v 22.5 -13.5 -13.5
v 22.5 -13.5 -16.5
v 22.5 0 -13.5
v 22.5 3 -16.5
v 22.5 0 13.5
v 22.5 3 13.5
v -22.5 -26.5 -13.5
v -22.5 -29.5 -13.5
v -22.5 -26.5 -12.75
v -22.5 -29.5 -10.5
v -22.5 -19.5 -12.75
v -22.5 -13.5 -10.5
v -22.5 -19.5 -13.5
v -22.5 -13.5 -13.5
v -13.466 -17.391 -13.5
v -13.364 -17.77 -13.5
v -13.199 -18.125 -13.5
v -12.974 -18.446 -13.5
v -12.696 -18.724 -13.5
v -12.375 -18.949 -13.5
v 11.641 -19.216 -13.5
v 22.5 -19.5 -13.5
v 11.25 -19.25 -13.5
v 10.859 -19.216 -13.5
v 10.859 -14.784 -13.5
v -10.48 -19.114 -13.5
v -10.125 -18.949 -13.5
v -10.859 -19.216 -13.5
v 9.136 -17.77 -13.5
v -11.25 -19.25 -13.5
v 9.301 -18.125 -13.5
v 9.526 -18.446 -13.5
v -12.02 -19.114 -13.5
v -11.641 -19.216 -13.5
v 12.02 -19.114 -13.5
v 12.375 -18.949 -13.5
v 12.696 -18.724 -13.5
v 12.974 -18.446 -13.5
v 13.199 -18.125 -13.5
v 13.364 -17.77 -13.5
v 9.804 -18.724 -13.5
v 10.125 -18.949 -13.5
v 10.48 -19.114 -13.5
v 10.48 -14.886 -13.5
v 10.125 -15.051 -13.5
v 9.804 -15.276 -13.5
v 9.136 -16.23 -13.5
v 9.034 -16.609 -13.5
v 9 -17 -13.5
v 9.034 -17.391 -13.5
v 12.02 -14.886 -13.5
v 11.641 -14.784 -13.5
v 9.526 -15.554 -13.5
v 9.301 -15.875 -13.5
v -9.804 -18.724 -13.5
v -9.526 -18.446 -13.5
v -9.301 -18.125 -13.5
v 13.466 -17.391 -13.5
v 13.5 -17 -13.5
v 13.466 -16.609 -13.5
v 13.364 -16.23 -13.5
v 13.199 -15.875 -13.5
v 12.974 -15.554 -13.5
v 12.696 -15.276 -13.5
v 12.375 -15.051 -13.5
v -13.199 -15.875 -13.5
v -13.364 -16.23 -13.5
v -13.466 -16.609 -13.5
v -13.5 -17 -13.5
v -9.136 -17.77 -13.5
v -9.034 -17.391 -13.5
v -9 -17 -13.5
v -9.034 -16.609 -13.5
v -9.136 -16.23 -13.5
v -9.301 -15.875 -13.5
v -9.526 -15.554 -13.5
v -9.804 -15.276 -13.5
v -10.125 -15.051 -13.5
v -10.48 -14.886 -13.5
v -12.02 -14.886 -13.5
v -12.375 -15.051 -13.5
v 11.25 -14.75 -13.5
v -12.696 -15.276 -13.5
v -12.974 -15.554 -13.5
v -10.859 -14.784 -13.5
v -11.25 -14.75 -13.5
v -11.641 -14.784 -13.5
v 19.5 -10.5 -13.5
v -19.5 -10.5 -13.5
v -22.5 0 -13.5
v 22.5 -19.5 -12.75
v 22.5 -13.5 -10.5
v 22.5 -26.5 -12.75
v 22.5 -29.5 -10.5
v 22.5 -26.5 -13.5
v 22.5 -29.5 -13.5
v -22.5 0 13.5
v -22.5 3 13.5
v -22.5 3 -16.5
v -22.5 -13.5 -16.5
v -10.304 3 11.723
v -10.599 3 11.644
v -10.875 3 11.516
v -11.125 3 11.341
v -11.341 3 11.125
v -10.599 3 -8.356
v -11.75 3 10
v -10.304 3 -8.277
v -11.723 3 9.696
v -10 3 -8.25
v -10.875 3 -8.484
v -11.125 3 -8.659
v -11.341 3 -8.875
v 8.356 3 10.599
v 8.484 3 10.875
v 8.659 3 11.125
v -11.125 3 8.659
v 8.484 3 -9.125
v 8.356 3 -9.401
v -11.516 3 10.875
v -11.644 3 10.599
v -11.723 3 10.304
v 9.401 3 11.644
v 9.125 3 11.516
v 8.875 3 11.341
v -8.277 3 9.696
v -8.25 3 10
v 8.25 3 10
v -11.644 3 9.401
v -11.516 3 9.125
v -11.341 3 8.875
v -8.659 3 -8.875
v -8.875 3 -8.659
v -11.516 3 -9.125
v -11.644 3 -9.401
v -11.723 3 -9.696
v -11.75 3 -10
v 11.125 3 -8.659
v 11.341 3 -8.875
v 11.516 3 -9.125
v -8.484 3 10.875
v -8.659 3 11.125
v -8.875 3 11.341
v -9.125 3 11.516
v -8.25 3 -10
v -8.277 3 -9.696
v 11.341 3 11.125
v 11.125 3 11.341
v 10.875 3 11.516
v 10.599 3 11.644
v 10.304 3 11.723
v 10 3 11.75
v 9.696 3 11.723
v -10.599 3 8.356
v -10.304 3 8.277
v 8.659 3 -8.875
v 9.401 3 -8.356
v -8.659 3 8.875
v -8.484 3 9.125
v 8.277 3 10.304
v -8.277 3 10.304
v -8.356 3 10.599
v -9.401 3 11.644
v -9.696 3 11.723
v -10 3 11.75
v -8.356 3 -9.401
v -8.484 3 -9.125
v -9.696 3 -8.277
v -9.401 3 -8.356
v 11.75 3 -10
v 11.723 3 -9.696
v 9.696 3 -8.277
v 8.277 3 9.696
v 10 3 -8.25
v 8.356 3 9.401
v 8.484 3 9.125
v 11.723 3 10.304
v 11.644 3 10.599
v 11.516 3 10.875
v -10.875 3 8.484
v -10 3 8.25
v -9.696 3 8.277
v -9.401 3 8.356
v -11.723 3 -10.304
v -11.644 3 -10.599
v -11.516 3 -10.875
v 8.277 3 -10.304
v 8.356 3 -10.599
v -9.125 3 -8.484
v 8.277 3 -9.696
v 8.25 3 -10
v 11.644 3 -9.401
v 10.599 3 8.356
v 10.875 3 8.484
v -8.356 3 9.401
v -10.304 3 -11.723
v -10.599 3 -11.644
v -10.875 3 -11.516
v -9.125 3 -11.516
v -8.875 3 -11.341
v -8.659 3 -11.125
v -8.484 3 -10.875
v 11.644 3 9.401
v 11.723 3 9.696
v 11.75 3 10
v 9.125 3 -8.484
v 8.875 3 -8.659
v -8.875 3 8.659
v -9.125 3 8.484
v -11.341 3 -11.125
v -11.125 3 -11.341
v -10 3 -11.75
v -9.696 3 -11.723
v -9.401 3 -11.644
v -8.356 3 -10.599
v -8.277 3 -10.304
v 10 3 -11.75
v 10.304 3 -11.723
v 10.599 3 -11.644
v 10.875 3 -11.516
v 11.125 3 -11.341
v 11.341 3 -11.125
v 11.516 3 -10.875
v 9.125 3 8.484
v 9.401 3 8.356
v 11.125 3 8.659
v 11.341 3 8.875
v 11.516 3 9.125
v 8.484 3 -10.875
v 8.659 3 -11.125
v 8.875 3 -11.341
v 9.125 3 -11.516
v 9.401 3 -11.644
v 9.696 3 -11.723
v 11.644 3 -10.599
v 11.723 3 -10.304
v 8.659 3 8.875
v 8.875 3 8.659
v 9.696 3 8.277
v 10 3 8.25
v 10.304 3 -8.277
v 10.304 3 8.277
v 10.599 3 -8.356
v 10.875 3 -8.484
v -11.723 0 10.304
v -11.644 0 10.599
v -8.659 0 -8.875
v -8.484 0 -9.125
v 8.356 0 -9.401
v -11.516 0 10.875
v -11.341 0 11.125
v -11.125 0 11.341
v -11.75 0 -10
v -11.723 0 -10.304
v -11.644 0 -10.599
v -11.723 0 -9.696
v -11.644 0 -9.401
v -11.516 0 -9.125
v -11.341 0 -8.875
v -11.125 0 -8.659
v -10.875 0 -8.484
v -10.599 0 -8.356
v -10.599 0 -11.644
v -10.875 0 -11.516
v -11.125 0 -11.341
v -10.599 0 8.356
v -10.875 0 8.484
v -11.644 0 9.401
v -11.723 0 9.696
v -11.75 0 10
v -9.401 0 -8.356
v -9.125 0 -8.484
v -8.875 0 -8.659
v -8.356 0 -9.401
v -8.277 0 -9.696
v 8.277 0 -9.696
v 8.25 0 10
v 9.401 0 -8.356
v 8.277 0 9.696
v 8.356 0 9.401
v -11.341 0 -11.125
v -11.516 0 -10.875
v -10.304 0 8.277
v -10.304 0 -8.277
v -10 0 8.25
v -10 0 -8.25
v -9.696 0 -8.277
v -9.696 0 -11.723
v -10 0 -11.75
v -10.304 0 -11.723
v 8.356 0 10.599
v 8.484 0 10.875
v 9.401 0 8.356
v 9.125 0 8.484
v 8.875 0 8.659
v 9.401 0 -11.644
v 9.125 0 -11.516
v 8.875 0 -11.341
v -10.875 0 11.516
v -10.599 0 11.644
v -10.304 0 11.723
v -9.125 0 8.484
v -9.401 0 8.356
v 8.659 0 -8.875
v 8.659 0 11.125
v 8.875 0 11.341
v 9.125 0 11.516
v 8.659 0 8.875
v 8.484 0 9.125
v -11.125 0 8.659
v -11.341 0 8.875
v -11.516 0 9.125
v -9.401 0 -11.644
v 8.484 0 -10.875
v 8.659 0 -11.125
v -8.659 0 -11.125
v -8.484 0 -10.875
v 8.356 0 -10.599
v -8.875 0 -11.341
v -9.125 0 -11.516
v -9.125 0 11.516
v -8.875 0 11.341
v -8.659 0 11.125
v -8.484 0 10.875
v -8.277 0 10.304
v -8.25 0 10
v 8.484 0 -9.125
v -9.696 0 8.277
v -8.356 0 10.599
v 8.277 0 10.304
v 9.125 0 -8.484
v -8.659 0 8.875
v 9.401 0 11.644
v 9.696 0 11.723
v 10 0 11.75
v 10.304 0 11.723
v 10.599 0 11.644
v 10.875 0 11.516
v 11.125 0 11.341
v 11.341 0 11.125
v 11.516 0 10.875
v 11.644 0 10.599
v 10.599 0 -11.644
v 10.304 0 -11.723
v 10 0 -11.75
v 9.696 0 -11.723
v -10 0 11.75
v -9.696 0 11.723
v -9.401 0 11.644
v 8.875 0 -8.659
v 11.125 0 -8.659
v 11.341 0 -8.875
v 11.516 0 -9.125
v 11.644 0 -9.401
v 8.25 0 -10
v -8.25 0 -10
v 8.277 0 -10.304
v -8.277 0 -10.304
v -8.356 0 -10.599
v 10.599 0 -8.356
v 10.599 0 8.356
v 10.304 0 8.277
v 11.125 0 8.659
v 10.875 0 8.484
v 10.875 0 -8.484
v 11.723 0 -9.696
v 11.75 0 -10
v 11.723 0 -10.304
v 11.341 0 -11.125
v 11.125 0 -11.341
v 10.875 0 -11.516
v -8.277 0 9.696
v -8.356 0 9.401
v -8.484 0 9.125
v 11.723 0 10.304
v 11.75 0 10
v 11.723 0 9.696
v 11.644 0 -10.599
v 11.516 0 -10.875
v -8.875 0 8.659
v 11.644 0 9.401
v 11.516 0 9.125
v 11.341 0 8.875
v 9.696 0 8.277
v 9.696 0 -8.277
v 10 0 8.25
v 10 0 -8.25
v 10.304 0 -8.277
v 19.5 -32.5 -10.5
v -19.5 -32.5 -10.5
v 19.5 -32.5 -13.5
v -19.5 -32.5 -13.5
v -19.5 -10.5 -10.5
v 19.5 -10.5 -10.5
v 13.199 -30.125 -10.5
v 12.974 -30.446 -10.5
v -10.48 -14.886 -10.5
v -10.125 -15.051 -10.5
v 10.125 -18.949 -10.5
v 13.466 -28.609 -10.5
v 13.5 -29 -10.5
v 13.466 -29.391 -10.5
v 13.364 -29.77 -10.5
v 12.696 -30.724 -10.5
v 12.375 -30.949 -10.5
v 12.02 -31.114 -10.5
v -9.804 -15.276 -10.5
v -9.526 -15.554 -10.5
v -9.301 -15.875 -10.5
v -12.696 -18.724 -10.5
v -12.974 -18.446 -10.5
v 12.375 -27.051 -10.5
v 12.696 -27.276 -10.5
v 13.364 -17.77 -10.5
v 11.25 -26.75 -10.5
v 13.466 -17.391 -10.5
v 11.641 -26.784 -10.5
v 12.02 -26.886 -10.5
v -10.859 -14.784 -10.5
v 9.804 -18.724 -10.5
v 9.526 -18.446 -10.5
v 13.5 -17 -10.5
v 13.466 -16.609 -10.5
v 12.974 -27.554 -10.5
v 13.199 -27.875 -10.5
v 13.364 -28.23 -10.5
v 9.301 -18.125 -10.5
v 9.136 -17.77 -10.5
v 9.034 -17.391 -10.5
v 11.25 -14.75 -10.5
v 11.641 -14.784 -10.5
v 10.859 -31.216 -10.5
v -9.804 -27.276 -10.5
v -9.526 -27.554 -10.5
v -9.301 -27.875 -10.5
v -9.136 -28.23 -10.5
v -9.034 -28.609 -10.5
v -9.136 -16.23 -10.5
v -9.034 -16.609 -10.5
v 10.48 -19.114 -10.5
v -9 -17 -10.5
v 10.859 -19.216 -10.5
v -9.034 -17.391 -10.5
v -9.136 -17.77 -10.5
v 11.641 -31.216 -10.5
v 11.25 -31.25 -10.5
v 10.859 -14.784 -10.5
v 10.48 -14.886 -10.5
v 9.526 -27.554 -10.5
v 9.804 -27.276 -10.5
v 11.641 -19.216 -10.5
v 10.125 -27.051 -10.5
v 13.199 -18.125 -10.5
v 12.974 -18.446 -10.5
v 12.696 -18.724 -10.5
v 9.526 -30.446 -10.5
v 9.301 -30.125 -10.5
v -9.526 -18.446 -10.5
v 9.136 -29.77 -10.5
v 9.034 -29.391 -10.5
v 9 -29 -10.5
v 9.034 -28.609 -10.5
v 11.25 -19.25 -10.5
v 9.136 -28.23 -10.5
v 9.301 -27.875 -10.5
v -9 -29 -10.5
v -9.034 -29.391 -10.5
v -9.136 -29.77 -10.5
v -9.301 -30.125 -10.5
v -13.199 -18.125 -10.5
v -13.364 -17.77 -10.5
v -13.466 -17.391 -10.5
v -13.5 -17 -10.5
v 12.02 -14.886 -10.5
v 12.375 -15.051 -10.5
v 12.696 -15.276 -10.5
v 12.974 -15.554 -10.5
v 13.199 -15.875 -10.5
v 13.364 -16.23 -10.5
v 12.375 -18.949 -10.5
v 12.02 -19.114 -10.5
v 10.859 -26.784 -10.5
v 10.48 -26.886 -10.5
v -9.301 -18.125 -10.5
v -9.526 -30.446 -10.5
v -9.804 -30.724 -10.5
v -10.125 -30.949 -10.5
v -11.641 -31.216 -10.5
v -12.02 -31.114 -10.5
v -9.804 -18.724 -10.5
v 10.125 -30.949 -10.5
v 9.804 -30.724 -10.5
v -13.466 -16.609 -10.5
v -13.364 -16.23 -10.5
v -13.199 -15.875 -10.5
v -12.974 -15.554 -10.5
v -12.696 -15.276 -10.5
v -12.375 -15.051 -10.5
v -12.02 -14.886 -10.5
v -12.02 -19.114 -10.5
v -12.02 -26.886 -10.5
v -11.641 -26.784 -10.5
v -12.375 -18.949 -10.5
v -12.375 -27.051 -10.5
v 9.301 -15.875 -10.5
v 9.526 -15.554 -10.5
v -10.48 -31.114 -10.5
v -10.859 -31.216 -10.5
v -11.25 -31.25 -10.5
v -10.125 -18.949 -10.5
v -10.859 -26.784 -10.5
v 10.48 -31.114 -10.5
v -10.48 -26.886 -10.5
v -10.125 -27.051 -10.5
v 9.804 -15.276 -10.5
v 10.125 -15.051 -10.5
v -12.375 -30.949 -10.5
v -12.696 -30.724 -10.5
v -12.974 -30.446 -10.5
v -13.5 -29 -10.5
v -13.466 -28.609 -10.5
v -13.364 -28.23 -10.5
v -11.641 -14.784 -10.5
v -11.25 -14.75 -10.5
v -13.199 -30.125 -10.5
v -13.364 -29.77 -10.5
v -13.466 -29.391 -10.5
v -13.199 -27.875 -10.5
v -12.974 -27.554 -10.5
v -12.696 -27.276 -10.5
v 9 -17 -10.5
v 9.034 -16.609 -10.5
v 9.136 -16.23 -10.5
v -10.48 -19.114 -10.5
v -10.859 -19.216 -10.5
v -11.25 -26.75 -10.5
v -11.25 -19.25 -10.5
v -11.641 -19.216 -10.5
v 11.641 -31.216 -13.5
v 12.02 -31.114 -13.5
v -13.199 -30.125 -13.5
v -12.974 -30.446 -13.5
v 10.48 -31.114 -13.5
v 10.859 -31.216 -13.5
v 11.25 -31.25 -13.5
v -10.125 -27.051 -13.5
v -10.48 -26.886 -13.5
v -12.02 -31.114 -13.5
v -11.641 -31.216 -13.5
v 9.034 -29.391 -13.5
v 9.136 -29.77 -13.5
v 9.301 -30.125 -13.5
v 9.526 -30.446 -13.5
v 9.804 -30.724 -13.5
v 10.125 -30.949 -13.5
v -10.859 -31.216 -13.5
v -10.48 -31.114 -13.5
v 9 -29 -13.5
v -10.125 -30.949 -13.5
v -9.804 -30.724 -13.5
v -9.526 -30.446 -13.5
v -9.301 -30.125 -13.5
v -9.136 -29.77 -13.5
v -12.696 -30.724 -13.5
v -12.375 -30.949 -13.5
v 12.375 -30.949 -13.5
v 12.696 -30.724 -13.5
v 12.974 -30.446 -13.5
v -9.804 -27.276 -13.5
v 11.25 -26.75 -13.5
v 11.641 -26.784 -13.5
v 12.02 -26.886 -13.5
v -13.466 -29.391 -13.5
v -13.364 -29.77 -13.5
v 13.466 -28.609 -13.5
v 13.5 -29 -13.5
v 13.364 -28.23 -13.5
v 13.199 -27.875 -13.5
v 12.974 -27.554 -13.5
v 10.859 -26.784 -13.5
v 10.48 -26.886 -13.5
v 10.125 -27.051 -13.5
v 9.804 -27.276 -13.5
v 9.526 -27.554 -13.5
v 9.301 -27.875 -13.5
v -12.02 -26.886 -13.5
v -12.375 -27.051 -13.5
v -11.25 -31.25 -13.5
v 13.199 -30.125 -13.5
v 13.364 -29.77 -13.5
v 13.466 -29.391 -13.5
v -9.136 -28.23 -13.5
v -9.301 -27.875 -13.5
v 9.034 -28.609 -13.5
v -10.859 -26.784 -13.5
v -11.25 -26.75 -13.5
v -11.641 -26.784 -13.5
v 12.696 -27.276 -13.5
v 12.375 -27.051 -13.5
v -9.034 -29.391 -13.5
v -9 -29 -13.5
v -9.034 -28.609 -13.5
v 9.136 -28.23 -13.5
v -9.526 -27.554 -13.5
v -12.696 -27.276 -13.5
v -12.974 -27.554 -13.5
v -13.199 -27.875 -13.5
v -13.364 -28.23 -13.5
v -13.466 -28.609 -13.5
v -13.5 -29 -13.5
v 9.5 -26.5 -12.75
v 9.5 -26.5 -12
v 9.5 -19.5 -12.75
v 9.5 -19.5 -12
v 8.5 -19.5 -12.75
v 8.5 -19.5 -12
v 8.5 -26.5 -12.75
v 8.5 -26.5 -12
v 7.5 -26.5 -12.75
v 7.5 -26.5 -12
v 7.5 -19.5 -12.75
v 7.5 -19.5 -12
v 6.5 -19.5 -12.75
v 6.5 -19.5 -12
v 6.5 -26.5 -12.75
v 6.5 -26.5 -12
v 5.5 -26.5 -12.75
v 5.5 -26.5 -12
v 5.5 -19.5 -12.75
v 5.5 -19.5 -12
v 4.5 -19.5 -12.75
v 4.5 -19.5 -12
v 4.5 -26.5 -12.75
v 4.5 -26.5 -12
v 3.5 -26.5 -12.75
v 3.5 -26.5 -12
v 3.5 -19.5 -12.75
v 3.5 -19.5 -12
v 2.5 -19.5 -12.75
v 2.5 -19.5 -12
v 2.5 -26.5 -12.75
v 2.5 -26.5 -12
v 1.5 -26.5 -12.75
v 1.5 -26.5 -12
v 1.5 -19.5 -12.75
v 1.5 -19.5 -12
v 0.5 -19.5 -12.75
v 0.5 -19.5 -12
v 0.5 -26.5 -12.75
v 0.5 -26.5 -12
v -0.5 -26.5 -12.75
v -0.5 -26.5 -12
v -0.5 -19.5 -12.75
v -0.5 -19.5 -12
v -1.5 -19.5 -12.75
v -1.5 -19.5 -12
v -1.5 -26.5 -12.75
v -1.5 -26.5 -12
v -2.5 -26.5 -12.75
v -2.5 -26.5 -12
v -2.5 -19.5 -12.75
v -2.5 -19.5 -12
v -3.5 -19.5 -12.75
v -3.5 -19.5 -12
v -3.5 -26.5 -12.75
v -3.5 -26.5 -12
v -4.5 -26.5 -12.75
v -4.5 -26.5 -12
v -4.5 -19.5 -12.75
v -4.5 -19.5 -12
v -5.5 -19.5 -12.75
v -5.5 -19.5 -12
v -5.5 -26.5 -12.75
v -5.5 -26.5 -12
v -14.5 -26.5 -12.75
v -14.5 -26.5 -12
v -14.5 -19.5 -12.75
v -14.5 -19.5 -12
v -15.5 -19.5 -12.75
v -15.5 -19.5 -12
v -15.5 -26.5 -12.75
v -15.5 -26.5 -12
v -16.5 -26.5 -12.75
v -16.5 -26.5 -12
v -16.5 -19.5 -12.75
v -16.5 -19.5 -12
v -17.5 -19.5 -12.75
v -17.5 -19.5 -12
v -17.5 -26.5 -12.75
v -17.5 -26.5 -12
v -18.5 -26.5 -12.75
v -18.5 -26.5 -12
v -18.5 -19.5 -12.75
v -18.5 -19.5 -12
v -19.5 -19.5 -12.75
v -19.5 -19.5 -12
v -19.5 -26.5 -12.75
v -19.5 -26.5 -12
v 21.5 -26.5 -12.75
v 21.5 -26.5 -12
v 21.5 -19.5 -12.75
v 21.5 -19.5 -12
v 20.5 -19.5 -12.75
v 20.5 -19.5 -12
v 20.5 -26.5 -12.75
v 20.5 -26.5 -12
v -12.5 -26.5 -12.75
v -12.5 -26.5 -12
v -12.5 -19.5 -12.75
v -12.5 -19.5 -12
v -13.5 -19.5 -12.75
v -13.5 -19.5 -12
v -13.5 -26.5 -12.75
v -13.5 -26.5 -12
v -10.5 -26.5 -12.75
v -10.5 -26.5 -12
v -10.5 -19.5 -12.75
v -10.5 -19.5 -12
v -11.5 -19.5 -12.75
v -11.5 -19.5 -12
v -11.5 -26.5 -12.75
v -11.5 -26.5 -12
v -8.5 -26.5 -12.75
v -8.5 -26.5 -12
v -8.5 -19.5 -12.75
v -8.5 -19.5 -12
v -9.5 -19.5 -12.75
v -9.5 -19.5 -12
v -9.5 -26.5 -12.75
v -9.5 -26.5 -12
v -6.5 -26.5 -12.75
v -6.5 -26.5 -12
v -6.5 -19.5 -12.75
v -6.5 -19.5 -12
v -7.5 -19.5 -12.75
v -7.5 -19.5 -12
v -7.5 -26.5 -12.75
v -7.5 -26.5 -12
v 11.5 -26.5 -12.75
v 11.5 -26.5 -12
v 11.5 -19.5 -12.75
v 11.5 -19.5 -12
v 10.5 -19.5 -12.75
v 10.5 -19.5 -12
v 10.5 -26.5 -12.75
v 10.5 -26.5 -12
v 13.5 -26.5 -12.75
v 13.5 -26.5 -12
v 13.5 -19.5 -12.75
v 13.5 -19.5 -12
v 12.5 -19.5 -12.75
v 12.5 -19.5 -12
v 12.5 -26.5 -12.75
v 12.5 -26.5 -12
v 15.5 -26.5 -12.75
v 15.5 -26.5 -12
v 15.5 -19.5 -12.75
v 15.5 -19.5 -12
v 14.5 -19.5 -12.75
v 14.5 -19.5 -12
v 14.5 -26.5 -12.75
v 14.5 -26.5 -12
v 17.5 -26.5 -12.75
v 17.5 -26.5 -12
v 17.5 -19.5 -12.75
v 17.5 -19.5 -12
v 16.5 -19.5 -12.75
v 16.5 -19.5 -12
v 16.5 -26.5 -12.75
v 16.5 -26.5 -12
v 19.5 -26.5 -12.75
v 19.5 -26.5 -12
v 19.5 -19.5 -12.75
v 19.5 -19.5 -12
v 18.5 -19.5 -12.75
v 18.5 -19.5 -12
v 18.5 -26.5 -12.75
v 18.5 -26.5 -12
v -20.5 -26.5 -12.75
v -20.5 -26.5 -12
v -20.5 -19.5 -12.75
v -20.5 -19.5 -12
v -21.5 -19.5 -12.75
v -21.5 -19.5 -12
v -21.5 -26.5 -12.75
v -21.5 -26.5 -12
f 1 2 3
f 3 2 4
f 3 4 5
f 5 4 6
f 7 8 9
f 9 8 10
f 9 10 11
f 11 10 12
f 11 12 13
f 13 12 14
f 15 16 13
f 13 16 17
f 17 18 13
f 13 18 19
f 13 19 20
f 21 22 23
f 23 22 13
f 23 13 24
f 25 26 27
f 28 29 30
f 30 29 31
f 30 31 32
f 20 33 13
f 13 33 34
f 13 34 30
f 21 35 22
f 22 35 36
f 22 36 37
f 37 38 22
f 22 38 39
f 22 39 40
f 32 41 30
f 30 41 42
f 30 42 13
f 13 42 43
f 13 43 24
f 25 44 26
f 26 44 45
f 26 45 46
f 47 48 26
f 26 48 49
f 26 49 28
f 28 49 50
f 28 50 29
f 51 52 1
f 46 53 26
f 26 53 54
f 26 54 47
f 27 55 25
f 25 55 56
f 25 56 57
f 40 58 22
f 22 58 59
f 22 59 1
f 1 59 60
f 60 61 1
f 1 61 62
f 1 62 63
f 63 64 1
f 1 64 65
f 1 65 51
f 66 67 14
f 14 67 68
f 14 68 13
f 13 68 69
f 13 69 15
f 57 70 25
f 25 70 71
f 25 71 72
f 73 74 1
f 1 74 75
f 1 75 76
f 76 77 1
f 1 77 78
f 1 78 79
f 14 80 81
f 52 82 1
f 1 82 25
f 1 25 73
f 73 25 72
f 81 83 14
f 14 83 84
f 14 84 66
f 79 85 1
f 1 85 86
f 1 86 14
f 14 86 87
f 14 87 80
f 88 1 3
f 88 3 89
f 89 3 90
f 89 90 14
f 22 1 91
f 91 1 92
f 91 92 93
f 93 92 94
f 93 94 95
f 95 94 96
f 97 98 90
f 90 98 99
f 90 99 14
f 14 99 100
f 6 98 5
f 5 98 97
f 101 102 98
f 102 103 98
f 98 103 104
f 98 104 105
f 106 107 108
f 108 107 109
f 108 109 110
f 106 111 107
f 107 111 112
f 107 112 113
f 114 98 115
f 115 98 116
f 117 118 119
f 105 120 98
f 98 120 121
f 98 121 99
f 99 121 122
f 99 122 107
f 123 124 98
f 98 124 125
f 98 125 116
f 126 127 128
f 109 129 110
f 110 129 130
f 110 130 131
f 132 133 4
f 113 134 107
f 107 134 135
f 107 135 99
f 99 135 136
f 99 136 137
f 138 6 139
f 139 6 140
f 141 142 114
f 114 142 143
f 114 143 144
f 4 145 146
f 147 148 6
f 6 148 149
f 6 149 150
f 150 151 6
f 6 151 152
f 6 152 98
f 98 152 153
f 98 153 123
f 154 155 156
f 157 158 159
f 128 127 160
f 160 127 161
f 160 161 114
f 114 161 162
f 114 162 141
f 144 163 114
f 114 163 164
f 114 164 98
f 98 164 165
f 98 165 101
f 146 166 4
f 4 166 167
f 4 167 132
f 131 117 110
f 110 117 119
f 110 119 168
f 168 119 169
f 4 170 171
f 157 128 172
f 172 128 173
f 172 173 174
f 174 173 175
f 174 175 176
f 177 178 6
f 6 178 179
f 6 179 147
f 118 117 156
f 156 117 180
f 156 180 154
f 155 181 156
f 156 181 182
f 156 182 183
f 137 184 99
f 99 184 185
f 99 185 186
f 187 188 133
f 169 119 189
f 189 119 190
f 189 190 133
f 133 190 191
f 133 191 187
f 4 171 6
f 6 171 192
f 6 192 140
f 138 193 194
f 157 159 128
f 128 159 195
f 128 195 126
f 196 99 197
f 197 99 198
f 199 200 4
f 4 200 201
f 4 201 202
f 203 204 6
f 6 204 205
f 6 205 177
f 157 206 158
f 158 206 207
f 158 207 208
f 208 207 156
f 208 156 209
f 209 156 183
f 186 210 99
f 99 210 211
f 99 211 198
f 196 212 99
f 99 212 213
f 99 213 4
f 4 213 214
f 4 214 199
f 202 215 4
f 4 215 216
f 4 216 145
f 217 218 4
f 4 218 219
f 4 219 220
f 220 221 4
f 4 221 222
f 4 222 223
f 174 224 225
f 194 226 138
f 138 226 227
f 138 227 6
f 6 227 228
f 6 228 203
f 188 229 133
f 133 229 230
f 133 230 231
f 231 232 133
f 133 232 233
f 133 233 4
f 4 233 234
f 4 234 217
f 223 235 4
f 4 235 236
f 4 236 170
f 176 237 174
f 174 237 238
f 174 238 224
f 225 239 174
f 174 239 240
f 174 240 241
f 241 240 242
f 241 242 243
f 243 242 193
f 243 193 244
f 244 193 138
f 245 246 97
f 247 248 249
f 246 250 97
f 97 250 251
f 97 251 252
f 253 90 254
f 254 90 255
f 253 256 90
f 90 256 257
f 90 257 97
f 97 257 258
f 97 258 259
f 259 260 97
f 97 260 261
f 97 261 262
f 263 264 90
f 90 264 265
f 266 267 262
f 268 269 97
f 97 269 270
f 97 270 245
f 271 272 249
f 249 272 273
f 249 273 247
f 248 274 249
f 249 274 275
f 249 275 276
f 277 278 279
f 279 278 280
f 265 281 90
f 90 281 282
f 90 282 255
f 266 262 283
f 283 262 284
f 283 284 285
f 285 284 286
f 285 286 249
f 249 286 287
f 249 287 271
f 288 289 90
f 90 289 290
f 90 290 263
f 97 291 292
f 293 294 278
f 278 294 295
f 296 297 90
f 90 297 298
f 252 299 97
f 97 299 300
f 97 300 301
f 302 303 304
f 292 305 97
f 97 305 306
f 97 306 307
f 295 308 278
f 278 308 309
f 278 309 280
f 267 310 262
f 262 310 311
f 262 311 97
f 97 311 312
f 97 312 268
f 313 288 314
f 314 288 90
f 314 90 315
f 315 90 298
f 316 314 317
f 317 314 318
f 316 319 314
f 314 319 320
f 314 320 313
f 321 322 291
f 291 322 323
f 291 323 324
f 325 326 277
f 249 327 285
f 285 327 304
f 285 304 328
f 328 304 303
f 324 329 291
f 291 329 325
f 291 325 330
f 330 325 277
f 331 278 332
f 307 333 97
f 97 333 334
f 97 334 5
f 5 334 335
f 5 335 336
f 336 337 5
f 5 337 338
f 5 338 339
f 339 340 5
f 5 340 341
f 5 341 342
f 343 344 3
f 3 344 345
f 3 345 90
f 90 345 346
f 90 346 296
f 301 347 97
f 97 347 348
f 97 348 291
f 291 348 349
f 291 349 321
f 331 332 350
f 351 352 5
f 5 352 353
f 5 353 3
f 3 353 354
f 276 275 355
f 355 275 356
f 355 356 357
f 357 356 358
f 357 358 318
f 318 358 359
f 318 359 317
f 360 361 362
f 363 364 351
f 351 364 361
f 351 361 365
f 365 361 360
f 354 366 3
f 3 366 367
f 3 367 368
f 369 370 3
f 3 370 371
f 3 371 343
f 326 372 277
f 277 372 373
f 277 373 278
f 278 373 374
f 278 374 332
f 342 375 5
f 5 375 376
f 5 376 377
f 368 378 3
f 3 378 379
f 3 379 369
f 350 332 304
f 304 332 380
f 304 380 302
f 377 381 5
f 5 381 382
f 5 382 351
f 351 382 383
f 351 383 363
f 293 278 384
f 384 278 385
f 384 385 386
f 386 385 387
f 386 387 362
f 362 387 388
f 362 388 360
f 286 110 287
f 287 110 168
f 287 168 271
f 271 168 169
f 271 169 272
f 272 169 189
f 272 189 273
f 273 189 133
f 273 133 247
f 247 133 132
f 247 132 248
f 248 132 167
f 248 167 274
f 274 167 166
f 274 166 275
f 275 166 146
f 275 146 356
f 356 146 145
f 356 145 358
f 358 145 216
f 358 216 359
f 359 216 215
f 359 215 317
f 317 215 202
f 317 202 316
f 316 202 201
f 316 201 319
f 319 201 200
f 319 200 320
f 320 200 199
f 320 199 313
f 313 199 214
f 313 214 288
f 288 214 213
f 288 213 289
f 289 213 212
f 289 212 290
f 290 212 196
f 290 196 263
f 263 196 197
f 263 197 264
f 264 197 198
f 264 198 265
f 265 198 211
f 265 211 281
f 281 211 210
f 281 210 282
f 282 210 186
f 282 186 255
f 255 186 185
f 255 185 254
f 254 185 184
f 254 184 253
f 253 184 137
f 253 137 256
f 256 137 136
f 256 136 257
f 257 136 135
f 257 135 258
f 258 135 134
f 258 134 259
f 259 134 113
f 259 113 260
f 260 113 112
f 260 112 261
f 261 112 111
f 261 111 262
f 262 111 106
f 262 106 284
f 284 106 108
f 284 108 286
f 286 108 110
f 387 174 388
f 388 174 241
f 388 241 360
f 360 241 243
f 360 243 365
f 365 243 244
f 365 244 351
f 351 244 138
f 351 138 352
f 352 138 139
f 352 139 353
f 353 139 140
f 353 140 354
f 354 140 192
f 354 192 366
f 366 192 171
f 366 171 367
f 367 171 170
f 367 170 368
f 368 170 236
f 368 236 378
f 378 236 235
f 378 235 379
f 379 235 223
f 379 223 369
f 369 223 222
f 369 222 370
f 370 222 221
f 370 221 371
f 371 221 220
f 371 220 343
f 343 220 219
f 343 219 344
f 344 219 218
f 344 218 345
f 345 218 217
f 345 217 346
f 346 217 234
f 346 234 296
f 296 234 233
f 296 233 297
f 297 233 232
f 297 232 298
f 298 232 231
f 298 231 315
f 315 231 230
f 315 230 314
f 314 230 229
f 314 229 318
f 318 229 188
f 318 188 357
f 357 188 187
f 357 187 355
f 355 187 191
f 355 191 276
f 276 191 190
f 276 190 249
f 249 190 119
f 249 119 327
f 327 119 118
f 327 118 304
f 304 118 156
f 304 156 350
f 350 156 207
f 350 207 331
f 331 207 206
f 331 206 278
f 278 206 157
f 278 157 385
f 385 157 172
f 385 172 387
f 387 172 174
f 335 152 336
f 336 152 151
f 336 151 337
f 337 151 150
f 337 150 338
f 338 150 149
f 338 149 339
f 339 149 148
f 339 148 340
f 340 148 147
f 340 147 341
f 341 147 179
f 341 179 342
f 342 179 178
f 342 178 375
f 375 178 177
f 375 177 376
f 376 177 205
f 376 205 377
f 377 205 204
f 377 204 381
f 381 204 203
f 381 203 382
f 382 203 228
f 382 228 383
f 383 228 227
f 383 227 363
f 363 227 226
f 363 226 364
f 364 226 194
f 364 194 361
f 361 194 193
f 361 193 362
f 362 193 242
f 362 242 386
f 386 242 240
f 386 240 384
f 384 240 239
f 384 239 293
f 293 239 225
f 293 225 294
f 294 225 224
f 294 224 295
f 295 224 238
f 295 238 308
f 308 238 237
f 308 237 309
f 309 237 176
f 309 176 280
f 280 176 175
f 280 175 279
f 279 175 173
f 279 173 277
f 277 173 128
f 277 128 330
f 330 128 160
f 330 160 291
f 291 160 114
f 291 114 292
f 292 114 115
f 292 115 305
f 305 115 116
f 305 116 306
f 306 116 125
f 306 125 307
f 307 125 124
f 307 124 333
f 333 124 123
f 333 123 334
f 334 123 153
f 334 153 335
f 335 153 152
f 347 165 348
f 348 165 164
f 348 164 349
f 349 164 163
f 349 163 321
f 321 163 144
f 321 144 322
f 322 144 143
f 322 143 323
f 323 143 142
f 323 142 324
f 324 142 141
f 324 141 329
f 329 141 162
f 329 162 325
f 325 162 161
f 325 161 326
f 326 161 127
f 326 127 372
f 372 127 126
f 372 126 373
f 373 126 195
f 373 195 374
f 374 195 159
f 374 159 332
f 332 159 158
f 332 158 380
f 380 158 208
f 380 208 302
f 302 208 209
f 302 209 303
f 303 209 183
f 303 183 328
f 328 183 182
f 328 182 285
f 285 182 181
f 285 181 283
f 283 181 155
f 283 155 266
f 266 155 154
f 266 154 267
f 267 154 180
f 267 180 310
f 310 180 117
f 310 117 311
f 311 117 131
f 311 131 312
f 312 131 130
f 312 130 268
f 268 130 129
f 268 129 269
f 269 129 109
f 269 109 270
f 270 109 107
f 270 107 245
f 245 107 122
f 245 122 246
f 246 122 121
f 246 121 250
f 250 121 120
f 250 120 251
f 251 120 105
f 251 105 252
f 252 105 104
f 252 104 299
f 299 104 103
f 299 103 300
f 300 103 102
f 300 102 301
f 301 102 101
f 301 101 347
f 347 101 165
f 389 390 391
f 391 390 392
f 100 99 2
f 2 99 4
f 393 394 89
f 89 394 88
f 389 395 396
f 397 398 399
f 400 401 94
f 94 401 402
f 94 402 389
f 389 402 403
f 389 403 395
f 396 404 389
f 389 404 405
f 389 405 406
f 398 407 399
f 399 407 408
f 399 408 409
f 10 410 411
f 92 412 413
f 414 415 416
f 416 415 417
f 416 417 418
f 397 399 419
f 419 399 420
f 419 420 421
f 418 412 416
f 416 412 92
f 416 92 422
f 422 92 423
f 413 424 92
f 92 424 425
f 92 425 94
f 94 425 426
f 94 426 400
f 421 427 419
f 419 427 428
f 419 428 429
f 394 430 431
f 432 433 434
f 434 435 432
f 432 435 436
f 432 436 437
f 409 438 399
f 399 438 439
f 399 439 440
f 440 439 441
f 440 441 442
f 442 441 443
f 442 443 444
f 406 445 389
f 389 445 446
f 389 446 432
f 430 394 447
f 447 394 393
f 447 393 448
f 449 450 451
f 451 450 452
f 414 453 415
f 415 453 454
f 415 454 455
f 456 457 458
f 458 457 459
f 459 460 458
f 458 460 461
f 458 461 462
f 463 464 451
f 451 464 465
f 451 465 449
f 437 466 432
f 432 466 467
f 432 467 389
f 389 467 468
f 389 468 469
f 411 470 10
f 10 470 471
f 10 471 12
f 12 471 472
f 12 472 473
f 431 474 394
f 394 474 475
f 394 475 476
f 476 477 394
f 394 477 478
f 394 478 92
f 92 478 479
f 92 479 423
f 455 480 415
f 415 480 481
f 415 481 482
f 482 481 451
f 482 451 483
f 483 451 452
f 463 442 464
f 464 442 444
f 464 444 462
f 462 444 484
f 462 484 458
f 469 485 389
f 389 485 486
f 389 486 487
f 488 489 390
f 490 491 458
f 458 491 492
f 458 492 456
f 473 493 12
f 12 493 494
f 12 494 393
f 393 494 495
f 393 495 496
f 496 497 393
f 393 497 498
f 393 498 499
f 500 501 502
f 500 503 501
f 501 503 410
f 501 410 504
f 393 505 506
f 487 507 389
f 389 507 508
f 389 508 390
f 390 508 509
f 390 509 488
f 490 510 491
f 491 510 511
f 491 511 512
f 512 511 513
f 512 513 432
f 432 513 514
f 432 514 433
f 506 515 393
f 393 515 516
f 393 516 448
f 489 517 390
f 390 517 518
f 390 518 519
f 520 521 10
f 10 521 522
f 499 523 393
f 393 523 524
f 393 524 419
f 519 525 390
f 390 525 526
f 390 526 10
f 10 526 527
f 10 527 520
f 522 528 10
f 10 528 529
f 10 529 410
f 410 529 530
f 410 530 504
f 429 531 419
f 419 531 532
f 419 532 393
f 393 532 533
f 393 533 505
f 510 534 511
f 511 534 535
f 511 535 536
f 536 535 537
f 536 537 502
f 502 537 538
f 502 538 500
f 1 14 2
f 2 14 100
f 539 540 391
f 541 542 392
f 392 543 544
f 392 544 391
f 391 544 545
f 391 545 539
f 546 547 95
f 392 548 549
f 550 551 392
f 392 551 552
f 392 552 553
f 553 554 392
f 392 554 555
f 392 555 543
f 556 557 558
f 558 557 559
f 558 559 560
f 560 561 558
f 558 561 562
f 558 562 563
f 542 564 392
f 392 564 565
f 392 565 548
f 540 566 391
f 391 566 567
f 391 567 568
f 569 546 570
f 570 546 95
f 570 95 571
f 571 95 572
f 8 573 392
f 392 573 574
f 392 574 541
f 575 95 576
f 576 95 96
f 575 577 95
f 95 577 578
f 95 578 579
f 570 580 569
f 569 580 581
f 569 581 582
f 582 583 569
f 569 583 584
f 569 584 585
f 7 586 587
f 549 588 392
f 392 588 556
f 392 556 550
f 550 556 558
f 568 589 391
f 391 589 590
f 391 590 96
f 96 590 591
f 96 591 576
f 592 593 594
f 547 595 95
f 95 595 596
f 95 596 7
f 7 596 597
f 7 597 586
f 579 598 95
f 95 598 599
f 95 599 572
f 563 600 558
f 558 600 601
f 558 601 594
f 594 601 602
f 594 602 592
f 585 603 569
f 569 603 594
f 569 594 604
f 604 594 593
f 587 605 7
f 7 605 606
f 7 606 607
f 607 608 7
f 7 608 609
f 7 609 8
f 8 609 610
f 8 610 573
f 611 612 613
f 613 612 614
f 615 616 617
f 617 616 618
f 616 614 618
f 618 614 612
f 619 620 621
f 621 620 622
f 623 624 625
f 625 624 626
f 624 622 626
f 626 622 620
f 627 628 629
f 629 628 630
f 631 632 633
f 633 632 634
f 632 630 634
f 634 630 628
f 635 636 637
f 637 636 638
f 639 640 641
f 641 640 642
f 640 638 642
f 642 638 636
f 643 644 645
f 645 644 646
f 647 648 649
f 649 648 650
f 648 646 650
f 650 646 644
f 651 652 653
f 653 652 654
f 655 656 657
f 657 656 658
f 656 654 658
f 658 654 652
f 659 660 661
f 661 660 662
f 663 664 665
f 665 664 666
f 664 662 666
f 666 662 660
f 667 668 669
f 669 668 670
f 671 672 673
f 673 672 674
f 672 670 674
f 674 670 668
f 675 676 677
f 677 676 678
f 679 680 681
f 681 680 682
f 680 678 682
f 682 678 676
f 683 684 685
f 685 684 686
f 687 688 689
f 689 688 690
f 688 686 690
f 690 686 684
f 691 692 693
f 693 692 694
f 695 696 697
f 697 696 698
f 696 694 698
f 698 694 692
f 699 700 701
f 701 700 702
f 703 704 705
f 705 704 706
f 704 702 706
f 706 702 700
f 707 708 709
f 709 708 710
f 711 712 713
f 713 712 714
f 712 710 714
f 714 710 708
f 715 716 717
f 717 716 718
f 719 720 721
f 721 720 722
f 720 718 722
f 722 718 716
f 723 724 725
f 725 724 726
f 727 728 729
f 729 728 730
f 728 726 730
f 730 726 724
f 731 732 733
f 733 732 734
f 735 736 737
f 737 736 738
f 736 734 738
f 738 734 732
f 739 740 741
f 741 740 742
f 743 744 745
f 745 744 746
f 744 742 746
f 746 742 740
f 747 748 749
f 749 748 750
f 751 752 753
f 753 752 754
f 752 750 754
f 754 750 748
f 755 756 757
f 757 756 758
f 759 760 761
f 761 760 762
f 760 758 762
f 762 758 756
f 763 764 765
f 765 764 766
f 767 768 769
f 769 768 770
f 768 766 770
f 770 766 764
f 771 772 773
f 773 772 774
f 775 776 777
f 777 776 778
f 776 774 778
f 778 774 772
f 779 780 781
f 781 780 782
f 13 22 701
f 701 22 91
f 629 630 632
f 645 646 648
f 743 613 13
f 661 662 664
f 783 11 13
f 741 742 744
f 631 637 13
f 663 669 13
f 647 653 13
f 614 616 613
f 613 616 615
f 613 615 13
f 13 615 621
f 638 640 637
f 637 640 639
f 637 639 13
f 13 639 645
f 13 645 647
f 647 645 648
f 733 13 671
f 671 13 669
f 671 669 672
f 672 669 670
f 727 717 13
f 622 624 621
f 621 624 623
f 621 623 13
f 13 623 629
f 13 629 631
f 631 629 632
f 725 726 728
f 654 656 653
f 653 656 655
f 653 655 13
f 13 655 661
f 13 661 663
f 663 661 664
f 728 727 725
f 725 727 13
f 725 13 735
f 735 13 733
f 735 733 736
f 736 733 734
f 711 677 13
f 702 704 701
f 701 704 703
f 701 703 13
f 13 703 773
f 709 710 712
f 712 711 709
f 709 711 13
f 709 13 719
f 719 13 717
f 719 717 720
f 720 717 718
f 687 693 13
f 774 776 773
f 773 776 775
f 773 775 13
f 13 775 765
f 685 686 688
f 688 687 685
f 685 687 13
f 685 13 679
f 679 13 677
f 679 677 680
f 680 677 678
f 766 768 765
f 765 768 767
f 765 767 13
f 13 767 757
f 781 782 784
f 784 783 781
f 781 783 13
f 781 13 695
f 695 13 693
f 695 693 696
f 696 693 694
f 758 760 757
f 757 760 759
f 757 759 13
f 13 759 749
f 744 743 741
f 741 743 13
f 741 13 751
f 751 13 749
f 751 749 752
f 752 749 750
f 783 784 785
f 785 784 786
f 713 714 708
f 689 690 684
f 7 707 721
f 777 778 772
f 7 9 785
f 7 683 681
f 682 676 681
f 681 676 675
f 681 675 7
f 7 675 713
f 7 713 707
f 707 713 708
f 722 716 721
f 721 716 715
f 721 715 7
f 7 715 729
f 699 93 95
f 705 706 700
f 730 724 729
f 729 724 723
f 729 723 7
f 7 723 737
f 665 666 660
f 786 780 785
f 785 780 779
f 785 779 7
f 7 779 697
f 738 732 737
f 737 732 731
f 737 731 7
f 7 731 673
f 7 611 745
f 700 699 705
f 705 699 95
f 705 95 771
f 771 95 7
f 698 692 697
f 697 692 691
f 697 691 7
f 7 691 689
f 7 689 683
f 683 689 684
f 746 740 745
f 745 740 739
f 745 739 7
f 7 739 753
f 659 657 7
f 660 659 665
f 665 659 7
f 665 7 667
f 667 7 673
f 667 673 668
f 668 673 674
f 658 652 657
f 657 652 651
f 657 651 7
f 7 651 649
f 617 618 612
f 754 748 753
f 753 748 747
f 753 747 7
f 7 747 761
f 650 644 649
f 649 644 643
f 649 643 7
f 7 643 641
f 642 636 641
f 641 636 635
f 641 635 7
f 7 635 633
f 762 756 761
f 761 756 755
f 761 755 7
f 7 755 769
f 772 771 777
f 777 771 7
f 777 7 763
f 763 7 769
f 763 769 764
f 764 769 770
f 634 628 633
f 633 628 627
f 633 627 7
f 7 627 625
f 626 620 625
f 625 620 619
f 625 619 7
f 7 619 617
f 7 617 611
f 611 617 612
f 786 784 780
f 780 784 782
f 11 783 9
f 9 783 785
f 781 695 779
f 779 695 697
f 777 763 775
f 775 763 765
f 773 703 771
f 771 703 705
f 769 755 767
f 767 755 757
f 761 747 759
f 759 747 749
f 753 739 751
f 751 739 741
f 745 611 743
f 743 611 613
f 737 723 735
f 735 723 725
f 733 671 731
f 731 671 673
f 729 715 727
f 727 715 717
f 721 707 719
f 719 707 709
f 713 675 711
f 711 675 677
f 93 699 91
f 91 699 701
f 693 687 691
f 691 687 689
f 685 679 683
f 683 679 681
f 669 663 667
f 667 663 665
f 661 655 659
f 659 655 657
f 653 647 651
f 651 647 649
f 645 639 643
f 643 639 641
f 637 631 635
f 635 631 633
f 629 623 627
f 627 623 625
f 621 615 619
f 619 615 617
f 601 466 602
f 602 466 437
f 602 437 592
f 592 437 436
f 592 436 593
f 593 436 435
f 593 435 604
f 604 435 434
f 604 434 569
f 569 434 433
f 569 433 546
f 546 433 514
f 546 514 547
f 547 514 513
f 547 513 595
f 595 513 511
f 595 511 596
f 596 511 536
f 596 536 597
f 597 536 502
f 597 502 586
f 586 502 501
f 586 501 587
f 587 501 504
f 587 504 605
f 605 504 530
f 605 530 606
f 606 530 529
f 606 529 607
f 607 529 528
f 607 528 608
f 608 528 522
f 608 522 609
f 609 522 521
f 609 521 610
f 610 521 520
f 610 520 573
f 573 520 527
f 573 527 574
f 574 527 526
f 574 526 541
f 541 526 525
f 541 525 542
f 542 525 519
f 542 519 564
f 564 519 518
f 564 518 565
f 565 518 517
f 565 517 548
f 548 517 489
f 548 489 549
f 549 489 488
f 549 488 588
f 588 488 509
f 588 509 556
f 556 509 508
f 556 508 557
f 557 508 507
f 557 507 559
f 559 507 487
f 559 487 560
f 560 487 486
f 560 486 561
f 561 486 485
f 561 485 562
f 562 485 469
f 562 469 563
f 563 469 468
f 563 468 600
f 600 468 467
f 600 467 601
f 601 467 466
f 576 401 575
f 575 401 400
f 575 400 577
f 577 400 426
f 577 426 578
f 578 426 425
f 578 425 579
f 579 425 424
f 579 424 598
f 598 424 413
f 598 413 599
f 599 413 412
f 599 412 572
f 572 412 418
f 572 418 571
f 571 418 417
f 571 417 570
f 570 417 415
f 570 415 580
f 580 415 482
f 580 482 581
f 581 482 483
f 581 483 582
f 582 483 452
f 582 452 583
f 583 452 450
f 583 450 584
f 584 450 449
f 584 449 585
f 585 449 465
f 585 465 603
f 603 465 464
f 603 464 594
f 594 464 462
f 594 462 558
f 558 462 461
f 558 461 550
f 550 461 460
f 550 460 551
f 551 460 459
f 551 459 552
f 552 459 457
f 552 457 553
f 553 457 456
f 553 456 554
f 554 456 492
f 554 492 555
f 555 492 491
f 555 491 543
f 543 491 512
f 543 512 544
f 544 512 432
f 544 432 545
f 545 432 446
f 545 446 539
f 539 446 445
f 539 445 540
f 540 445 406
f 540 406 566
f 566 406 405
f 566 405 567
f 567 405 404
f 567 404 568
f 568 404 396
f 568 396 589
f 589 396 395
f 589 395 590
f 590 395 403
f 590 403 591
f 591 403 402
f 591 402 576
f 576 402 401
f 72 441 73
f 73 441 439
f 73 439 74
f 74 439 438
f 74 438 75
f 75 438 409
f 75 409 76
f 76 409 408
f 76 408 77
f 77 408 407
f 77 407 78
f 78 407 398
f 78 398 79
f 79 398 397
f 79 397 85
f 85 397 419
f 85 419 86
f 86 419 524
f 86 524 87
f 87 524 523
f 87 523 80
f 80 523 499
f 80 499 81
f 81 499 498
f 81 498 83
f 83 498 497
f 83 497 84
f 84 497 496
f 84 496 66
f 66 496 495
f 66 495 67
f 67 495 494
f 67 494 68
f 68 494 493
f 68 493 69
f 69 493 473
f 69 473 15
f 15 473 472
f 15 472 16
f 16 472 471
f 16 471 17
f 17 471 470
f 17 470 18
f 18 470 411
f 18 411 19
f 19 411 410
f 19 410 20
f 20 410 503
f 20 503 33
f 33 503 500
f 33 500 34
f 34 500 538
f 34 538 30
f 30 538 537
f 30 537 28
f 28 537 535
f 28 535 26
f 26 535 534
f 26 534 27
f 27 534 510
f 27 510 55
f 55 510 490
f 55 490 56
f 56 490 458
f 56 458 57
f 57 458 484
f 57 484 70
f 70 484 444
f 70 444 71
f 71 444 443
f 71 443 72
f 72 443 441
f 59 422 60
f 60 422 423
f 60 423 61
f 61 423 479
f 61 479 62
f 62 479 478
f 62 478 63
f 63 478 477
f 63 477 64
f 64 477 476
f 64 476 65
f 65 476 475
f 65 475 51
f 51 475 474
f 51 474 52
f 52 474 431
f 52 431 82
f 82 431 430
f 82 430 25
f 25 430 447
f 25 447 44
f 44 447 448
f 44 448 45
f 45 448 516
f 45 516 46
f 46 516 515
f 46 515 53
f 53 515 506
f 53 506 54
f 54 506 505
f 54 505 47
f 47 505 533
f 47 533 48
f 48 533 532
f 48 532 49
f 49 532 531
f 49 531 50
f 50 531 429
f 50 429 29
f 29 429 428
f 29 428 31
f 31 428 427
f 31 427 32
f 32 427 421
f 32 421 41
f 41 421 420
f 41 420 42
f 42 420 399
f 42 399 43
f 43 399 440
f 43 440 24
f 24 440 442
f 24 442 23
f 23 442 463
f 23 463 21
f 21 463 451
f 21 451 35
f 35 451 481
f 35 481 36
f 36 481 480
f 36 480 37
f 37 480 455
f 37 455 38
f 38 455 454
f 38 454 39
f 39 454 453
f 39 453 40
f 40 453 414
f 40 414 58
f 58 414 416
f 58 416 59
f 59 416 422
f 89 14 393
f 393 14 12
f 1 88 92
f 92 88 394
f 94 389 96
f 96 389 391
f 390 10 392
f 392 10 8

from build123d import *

# Parameters (mm, degrees)
SKETCH1_W                      = 45
SKETCH1_H                      = 27
BOSS_EXTRUDE1_DEPTH            = 3
CUT_EXTRUDE1_REACH             = 28.41
SKETCH2_R                      = 1.75
SKETCH3_W                      = 45
SKETCH3_H                      = 35.5
BOSS_EXTRUDE2_DEPTH            = 3
SKETCH4_W                      = 45
SKETCH4_H                      = 22
BOSS_EXTRUDE3_DEPTH            = 3
SKETCH6_W                      = 45
SKETCH6_H                      = 19
CUT_EXTRUDE2_DEPTH             = 3
SKETCH7_W                      = 1
SKETCH7_H                      = 7
CUT_EXTRUDE3_DEPTH             = 1.5
SKETCH8_W                      = 45
SKETCH8_H                      = 7
CUT_EXTRUDE4_DEPTH             = 0.75
CUT_EXTRUDE5_REACH             = 49.87
SKETCH10_R                     = 2.25
CUT_EXTRUDE5_DIRECTION_2_DEPTH = 48.86961458
CHAMFER1_SIZE                  = 3


with BuildPart() as part:
    # Sketch1 → Boss-Extrude1 (new body)
    with BuildSketch(Plane(origin=(0, 0, 0), x_dir=(1, 0, 0), z_dir=(0, 1, 0))):
        Rectangle(SKETCH1_W, SKETCH1_H)
    extrude(amount=BOSS_EXTRUDE1_DEPTH)

    # Sketch2 → Cut-Extrude1 (cut, up to next)
    with BuildSketch(Plane(origin=(0, 3, 0), x_dir=(1, 0, 0), z_dir=(0, 1, 0)), mode=Mode.PRIVATE) as cut_extrude1_sk1:
        with Locations(Location((-10, 10, 0), (0, 0, 270))):
            Circle(SKETCH2_R)
    cut_extrude1_tool1 = extrude(cut_extrude1_sk1.sketch, amount=-CUT_EXTRUDE1_REACH, mode=Mode.PRIVATE) & part.part
    # Sketch2 → Cut-Extrude1 (cut, up to next)
    with BuildSketch(Plane(origin=(0, 3, 0), x_dir=(1, 0, 0), z_dir=(0, 1, 0)), mode=Mode.PRIVATE) as cut_extrude1_sk2:
        with Locations(Location((10, 10, 0), (0, 0, 270))):
            Circle(SKETCH2_R)
    cut_extrude1_tool2 = extrude(cut_extrude1_sk2.sketch, amount=-CUT_EXTRUDE1_REACH, mode=Mode.PRIVATE) & part.part
    # Sketch2 → Cut-Extrude1 (cut, up to next)
    with BuildSketch(Plane(origin=(0, 3, 0), x_dir=(1, 0, 0), z_dir=(0, 1, 0)), mode=Mode.PRIVATE) as cut_extrude1_sk3:
        with Locations(Location((10, -10, 0), (0, 0, 270))):
            Circle(SKETCH2_R)
    cut_extrude1_tool3 = extrude(cut_extrude1_sk3.sketch, amount=-CUT_EXTRUDE1_REACH, mode=Mode.PRIVATE) & part.part
    # Sketch2 → Cut-Extrude1 (cut, up to next)
    with BuildSketch(Plane(origin=(0, 3, 0), x_dir=(1, 0, 0), z_dir=(0, 1, 0)), mode=Mode.PRIVATE) as cut_extrude1_sk4:
        with Locations(Location((-10, -10, 0), (0, 0, 270))):
            Circle(SKETCH2_R)
    cut_extrude1_tool4 = extrude(cut_extrude1_sk4.sketch, amount=-CUT_EXTRUDE1_REACH, mode=Mode.PRIVATE) & part.part
    add(cut_extrude1_tool1.solids().sort_by_distance((-10, 3, -10))[0], mode=Mode.SUBTRACT)
    add(cut_extrude1_tool2.solids().sort_by_distance((10, 3, -10))[0], mode=Mode.SUBTRACT)
    add(cut_extrude1_tool3.solids().sort_by_distance((10, 3, 10))[0], mode=Mode.SUBTRACT)
    add(cut_extrude1_tool4.solids().sort_by_distance((-10, 3, 10))[0], mode=Mode.SUBTRACT)

    # Sketch3 → Boss-Extrude2 (add)
    with BuildSketch(Plane(origin=(0, 0, -13.5), x_dir=(-1, 0, 0), z_dir=(0, 0, -1))):
        with Locations((0, -14.75)):
            Rectangle(SKETCH3_W, SKETCH3_H)
    extrude(amount=BOSS_EXTRUDE2_DEPTH)

    # Sketch4 → Boss-Extrude3 (add)
    with BuildSketch(Plane.XY.offset(-13.5)):
        with Locations((0, -21.5)):
            Rectangle(SKETCH4_W, SKETCH4_H)
    extrude(amount=BOSS_EXTRUDE3_DEPTH)

    # Sketch6 → Cut-Extrude2 (cut)
    with BuildSketch(Plane(origin=(0, 0, -16.5), x_dir=(-1, 0, 0), z_dir=(0, 0, -1))):
        with Locations((0, -23)):
            Rectangle(SKETCH6_W, SKETCH6_H)
    extrude(amount=-CUT_EXTRUDE2_DEPTH, mode=Mode.SUBTRACT)

    # Sketch7 → Cut-Extrude3 (cut)
    with BuildSketch(Plane(origin=(0, 0, -13.5), x_dir=(-1, 0, 0), z_dir=(0, 0, -1))):
        with Locations((19, -23)):
            Rectangle(SKETCH7_W, SKETCH7_H)
        with Locations((21, -23)):
            Rectangle(SKETCH7_W, SKETCH7_H)
        with Locations((17, -23)):
            Rectangle(SKETCH7_W, SKETCH7_H)
        with Locations((15, -23)):
            Rectangle(SKETCH7_W, SKETCH7_H)
        with Locations((13, -23)):
            Rectangle(SKETCH7_W, SKETCH7_H)
        with Locations((11, -23)):
            Rectangle(SKETCH7_W, SKETCH7_H)
        with Locations((9, -23)):
            Rectangle(SKETCH7_W, SKETCH7_H)
        with Locations((7, -23)):
            Rectangle(SKETCH7_W, SKETCH7_H)
        with Locations((5, -23)):
            Rectangle(SKETCH7_W, SKETCH7_H)
        with Locations((3, -23)):
            Rectangle(SKETCH7_W, SKETCH7_H)
        with Locations((1, -23)):
            Rectangle(SKETCH7_W, SKETCH7_H)
        with Locations((-1, -23)):
            Rectangle(SKETCH7_W, SKETCH7_H)
        with Locations((-3, -23)):
            Rectangle(SKETCH7_W, SKETCH7_H)
        with Locations((-5, -23)):
            Rectangle(SKETCH7_W, SKETCH7_H)
        with Locations((-7, -23)):
            Rectangle(SKETCH7_W, SKETCH7_H)
        with Locations((-9, -23)):
            Rectangle(SKETCH7_W, SKETCH7_H)
        with Locations((-11, -23)):
            Rectangle(SKETCH7_W, SKETCH7_H)
        with Locations((-13, -23)):
            Rectangle(SKETCH7_W, SKETCH7_H)
        with Locations((-15, -23)):
            Rectangle(SKETCH7_W, SKETCH7_H)
        with Locations((-17, -23)):
            Rectangle(SKETCH7_W, SKETCH7_H)
        with Locations((-19, -23)):
            Rectangle(SKETCH7_W, SKETCH7_H)
        with Locations((-21, -23)):
            Rectangle(SKETCH7_W, SKETCH7_H)
    extrude(amount=-CUT_EXTRUDE3_DEPTH, mode=Mode.SUBTRACT)

    # Sketch8 → Cut-Extrude4 (cut)
    with BuildSketch(Plane(origin=(0, 0, -13.5), x_dir=(-1, 0, 0), z_dir=(0, 0, -1))):
        with Locations((0, -23)):
            Rectangle(SKETCH8_W, SKETCH8_H)
    extrude(amount=-CUT_EXTRUDE4_DEPTH, mode=Mode.SUBTRACT)

    # Sketch10 → Cut-Extrude5 (cut, up to next)
    with BuildSketch(Plane(origin=(0, 0, -13.5), x_dir=(-1, 0, 0), z_dir=(0, 0, -1)), mode=Mode.PRIVATE) as cut_extrude5_sk1:
        with Locations(Location((11.25, -29, 0), (0, 0, 180))):
            Circle(SKETCH10_R)
    cut_extrude5_tool1 = extrude(cut_extrude5_sk1.sketch, amount=-CUT_EXTRUDE5_REACH, mode=Mode.PRIVATE) & part.part
    # Sketch10 → Cut-Extrude5 (cut, up to next)
    with BuildSketch(Plane(origin=(0, 0, -13.5), x_dir=(-1, 0, 0), z_dir=(0, 0, -1)), mode=Mode.PRIVATE) as cut_extrude5_sk2:
        with Locations(Location((11.25, -17, 0), (0, 0, 180))):
            Circle(SKETCH10_R)
    cut_extrude5_tool2 = extrude(cut_extrude5_sk2.sketch, amount=-CUT_EXTRUDE5_REACH, mode=Mode.PRIVATE) & part.part
    # Sketch10 → Cut-Extrude5 (cut, up to next)
    with BuildSketch(Plane(origin=(0, 0, -13.5), x_dir=(-1, 0, 0), z_dir=(0, 0, -1)), mode=Mode.PRIVATE) as cut_extrude5_sk3:
        with Locations(Location((-11.25, -17, 0), (0, 0, 180))):
            Circle(SKETCH10_R)
    cut_extrude5_tool3 = extrude(cut_extrude5_sk3.sketch, amount=-CUT_EXTRUDE5_REACH, mode=Mode.PRIVATE) & part.part
    # Sketch10 → Cut-Extrude5 (cut, up to next)
    with BuildSketch(Plane(origin=(0, 0, -13.5), x_dir=(-1, 0, 0), z_dir=(0, 0, -1)), mode=Mode.PRIVATE) as cut_extrude5_sk4:
        with Locations(Location((-11.25, -29, 0), (0, 0, 180))):
            Circle(SKETCH10_R)
    cut_extrude5_tool4 = extrude(cut_extrude5_sk4.sketch, amount=-CUT_EXTRUDE5_REACH, mode=Mode.PRIVATE) & part.part
    add(cut_extrude5_tool1.solids().sort_by_distance((-11.25, -29, -13.5))[0], mode=Mode.SUBTRACT)
    add(cut_extrude5_tool2.solids().sort_by_distance((-11.25, -17, -13.5))[0], mode=Mode.SUBTRACT)
    add(cut_extrude5_tool3.solids().sort_by_distance((11.25, -17, -13.5))[0], mode=Mode.SUBTRACT)
    add(cut_extrude5_tool4.solids().sort_by_distance((11.25, -29, -13.5))[0], mode=Mode.SUBTRACT)

    # Sketch10 → Cut-Extrude5 direction 2 (cut)
    with BuildSketch(Plane(origin=(0, 0, -13.5), x_dir=(-1, 0, 0), z_dir=(0, 0, -1))):
        with Locations(Location((11.25, -29, 0), (0, 0, 180))):
            Circle(SKETCH10_R)
        with Locations(Location((11.25, -17, 0), (0, 0, 180))):
            Circle(SKETCH10_R)
        with Locations(Location((-11.25, -17, 0), (0, 0, 180))):
            Circle(SKETCH10_R)
        with Locations(Location((-11.25, -29, 0), (0, 0, 180))):
            Circle(SKETCH10_R)
    extrude(amount=CUT_EXTRUDE5_DIRECTION_2_DEPTH, mode=Mode.SUBTRACT)

    # Chamfer1
    chamfer1_edges = [part.edges().sort_by_distance(p)[0] for p in [
        (22.5, -10.5, -12),
        (-22.5, -10.5, -12),
        (22.5, -32.5, -12),
        (-22.5, -32.5, -12),
    ]]
    chamfer(chamfer1_edges, length=CHAMFER1_SIZE - 0.0001)  # a hair under: the kernel refuses the full size


solid = part.part
